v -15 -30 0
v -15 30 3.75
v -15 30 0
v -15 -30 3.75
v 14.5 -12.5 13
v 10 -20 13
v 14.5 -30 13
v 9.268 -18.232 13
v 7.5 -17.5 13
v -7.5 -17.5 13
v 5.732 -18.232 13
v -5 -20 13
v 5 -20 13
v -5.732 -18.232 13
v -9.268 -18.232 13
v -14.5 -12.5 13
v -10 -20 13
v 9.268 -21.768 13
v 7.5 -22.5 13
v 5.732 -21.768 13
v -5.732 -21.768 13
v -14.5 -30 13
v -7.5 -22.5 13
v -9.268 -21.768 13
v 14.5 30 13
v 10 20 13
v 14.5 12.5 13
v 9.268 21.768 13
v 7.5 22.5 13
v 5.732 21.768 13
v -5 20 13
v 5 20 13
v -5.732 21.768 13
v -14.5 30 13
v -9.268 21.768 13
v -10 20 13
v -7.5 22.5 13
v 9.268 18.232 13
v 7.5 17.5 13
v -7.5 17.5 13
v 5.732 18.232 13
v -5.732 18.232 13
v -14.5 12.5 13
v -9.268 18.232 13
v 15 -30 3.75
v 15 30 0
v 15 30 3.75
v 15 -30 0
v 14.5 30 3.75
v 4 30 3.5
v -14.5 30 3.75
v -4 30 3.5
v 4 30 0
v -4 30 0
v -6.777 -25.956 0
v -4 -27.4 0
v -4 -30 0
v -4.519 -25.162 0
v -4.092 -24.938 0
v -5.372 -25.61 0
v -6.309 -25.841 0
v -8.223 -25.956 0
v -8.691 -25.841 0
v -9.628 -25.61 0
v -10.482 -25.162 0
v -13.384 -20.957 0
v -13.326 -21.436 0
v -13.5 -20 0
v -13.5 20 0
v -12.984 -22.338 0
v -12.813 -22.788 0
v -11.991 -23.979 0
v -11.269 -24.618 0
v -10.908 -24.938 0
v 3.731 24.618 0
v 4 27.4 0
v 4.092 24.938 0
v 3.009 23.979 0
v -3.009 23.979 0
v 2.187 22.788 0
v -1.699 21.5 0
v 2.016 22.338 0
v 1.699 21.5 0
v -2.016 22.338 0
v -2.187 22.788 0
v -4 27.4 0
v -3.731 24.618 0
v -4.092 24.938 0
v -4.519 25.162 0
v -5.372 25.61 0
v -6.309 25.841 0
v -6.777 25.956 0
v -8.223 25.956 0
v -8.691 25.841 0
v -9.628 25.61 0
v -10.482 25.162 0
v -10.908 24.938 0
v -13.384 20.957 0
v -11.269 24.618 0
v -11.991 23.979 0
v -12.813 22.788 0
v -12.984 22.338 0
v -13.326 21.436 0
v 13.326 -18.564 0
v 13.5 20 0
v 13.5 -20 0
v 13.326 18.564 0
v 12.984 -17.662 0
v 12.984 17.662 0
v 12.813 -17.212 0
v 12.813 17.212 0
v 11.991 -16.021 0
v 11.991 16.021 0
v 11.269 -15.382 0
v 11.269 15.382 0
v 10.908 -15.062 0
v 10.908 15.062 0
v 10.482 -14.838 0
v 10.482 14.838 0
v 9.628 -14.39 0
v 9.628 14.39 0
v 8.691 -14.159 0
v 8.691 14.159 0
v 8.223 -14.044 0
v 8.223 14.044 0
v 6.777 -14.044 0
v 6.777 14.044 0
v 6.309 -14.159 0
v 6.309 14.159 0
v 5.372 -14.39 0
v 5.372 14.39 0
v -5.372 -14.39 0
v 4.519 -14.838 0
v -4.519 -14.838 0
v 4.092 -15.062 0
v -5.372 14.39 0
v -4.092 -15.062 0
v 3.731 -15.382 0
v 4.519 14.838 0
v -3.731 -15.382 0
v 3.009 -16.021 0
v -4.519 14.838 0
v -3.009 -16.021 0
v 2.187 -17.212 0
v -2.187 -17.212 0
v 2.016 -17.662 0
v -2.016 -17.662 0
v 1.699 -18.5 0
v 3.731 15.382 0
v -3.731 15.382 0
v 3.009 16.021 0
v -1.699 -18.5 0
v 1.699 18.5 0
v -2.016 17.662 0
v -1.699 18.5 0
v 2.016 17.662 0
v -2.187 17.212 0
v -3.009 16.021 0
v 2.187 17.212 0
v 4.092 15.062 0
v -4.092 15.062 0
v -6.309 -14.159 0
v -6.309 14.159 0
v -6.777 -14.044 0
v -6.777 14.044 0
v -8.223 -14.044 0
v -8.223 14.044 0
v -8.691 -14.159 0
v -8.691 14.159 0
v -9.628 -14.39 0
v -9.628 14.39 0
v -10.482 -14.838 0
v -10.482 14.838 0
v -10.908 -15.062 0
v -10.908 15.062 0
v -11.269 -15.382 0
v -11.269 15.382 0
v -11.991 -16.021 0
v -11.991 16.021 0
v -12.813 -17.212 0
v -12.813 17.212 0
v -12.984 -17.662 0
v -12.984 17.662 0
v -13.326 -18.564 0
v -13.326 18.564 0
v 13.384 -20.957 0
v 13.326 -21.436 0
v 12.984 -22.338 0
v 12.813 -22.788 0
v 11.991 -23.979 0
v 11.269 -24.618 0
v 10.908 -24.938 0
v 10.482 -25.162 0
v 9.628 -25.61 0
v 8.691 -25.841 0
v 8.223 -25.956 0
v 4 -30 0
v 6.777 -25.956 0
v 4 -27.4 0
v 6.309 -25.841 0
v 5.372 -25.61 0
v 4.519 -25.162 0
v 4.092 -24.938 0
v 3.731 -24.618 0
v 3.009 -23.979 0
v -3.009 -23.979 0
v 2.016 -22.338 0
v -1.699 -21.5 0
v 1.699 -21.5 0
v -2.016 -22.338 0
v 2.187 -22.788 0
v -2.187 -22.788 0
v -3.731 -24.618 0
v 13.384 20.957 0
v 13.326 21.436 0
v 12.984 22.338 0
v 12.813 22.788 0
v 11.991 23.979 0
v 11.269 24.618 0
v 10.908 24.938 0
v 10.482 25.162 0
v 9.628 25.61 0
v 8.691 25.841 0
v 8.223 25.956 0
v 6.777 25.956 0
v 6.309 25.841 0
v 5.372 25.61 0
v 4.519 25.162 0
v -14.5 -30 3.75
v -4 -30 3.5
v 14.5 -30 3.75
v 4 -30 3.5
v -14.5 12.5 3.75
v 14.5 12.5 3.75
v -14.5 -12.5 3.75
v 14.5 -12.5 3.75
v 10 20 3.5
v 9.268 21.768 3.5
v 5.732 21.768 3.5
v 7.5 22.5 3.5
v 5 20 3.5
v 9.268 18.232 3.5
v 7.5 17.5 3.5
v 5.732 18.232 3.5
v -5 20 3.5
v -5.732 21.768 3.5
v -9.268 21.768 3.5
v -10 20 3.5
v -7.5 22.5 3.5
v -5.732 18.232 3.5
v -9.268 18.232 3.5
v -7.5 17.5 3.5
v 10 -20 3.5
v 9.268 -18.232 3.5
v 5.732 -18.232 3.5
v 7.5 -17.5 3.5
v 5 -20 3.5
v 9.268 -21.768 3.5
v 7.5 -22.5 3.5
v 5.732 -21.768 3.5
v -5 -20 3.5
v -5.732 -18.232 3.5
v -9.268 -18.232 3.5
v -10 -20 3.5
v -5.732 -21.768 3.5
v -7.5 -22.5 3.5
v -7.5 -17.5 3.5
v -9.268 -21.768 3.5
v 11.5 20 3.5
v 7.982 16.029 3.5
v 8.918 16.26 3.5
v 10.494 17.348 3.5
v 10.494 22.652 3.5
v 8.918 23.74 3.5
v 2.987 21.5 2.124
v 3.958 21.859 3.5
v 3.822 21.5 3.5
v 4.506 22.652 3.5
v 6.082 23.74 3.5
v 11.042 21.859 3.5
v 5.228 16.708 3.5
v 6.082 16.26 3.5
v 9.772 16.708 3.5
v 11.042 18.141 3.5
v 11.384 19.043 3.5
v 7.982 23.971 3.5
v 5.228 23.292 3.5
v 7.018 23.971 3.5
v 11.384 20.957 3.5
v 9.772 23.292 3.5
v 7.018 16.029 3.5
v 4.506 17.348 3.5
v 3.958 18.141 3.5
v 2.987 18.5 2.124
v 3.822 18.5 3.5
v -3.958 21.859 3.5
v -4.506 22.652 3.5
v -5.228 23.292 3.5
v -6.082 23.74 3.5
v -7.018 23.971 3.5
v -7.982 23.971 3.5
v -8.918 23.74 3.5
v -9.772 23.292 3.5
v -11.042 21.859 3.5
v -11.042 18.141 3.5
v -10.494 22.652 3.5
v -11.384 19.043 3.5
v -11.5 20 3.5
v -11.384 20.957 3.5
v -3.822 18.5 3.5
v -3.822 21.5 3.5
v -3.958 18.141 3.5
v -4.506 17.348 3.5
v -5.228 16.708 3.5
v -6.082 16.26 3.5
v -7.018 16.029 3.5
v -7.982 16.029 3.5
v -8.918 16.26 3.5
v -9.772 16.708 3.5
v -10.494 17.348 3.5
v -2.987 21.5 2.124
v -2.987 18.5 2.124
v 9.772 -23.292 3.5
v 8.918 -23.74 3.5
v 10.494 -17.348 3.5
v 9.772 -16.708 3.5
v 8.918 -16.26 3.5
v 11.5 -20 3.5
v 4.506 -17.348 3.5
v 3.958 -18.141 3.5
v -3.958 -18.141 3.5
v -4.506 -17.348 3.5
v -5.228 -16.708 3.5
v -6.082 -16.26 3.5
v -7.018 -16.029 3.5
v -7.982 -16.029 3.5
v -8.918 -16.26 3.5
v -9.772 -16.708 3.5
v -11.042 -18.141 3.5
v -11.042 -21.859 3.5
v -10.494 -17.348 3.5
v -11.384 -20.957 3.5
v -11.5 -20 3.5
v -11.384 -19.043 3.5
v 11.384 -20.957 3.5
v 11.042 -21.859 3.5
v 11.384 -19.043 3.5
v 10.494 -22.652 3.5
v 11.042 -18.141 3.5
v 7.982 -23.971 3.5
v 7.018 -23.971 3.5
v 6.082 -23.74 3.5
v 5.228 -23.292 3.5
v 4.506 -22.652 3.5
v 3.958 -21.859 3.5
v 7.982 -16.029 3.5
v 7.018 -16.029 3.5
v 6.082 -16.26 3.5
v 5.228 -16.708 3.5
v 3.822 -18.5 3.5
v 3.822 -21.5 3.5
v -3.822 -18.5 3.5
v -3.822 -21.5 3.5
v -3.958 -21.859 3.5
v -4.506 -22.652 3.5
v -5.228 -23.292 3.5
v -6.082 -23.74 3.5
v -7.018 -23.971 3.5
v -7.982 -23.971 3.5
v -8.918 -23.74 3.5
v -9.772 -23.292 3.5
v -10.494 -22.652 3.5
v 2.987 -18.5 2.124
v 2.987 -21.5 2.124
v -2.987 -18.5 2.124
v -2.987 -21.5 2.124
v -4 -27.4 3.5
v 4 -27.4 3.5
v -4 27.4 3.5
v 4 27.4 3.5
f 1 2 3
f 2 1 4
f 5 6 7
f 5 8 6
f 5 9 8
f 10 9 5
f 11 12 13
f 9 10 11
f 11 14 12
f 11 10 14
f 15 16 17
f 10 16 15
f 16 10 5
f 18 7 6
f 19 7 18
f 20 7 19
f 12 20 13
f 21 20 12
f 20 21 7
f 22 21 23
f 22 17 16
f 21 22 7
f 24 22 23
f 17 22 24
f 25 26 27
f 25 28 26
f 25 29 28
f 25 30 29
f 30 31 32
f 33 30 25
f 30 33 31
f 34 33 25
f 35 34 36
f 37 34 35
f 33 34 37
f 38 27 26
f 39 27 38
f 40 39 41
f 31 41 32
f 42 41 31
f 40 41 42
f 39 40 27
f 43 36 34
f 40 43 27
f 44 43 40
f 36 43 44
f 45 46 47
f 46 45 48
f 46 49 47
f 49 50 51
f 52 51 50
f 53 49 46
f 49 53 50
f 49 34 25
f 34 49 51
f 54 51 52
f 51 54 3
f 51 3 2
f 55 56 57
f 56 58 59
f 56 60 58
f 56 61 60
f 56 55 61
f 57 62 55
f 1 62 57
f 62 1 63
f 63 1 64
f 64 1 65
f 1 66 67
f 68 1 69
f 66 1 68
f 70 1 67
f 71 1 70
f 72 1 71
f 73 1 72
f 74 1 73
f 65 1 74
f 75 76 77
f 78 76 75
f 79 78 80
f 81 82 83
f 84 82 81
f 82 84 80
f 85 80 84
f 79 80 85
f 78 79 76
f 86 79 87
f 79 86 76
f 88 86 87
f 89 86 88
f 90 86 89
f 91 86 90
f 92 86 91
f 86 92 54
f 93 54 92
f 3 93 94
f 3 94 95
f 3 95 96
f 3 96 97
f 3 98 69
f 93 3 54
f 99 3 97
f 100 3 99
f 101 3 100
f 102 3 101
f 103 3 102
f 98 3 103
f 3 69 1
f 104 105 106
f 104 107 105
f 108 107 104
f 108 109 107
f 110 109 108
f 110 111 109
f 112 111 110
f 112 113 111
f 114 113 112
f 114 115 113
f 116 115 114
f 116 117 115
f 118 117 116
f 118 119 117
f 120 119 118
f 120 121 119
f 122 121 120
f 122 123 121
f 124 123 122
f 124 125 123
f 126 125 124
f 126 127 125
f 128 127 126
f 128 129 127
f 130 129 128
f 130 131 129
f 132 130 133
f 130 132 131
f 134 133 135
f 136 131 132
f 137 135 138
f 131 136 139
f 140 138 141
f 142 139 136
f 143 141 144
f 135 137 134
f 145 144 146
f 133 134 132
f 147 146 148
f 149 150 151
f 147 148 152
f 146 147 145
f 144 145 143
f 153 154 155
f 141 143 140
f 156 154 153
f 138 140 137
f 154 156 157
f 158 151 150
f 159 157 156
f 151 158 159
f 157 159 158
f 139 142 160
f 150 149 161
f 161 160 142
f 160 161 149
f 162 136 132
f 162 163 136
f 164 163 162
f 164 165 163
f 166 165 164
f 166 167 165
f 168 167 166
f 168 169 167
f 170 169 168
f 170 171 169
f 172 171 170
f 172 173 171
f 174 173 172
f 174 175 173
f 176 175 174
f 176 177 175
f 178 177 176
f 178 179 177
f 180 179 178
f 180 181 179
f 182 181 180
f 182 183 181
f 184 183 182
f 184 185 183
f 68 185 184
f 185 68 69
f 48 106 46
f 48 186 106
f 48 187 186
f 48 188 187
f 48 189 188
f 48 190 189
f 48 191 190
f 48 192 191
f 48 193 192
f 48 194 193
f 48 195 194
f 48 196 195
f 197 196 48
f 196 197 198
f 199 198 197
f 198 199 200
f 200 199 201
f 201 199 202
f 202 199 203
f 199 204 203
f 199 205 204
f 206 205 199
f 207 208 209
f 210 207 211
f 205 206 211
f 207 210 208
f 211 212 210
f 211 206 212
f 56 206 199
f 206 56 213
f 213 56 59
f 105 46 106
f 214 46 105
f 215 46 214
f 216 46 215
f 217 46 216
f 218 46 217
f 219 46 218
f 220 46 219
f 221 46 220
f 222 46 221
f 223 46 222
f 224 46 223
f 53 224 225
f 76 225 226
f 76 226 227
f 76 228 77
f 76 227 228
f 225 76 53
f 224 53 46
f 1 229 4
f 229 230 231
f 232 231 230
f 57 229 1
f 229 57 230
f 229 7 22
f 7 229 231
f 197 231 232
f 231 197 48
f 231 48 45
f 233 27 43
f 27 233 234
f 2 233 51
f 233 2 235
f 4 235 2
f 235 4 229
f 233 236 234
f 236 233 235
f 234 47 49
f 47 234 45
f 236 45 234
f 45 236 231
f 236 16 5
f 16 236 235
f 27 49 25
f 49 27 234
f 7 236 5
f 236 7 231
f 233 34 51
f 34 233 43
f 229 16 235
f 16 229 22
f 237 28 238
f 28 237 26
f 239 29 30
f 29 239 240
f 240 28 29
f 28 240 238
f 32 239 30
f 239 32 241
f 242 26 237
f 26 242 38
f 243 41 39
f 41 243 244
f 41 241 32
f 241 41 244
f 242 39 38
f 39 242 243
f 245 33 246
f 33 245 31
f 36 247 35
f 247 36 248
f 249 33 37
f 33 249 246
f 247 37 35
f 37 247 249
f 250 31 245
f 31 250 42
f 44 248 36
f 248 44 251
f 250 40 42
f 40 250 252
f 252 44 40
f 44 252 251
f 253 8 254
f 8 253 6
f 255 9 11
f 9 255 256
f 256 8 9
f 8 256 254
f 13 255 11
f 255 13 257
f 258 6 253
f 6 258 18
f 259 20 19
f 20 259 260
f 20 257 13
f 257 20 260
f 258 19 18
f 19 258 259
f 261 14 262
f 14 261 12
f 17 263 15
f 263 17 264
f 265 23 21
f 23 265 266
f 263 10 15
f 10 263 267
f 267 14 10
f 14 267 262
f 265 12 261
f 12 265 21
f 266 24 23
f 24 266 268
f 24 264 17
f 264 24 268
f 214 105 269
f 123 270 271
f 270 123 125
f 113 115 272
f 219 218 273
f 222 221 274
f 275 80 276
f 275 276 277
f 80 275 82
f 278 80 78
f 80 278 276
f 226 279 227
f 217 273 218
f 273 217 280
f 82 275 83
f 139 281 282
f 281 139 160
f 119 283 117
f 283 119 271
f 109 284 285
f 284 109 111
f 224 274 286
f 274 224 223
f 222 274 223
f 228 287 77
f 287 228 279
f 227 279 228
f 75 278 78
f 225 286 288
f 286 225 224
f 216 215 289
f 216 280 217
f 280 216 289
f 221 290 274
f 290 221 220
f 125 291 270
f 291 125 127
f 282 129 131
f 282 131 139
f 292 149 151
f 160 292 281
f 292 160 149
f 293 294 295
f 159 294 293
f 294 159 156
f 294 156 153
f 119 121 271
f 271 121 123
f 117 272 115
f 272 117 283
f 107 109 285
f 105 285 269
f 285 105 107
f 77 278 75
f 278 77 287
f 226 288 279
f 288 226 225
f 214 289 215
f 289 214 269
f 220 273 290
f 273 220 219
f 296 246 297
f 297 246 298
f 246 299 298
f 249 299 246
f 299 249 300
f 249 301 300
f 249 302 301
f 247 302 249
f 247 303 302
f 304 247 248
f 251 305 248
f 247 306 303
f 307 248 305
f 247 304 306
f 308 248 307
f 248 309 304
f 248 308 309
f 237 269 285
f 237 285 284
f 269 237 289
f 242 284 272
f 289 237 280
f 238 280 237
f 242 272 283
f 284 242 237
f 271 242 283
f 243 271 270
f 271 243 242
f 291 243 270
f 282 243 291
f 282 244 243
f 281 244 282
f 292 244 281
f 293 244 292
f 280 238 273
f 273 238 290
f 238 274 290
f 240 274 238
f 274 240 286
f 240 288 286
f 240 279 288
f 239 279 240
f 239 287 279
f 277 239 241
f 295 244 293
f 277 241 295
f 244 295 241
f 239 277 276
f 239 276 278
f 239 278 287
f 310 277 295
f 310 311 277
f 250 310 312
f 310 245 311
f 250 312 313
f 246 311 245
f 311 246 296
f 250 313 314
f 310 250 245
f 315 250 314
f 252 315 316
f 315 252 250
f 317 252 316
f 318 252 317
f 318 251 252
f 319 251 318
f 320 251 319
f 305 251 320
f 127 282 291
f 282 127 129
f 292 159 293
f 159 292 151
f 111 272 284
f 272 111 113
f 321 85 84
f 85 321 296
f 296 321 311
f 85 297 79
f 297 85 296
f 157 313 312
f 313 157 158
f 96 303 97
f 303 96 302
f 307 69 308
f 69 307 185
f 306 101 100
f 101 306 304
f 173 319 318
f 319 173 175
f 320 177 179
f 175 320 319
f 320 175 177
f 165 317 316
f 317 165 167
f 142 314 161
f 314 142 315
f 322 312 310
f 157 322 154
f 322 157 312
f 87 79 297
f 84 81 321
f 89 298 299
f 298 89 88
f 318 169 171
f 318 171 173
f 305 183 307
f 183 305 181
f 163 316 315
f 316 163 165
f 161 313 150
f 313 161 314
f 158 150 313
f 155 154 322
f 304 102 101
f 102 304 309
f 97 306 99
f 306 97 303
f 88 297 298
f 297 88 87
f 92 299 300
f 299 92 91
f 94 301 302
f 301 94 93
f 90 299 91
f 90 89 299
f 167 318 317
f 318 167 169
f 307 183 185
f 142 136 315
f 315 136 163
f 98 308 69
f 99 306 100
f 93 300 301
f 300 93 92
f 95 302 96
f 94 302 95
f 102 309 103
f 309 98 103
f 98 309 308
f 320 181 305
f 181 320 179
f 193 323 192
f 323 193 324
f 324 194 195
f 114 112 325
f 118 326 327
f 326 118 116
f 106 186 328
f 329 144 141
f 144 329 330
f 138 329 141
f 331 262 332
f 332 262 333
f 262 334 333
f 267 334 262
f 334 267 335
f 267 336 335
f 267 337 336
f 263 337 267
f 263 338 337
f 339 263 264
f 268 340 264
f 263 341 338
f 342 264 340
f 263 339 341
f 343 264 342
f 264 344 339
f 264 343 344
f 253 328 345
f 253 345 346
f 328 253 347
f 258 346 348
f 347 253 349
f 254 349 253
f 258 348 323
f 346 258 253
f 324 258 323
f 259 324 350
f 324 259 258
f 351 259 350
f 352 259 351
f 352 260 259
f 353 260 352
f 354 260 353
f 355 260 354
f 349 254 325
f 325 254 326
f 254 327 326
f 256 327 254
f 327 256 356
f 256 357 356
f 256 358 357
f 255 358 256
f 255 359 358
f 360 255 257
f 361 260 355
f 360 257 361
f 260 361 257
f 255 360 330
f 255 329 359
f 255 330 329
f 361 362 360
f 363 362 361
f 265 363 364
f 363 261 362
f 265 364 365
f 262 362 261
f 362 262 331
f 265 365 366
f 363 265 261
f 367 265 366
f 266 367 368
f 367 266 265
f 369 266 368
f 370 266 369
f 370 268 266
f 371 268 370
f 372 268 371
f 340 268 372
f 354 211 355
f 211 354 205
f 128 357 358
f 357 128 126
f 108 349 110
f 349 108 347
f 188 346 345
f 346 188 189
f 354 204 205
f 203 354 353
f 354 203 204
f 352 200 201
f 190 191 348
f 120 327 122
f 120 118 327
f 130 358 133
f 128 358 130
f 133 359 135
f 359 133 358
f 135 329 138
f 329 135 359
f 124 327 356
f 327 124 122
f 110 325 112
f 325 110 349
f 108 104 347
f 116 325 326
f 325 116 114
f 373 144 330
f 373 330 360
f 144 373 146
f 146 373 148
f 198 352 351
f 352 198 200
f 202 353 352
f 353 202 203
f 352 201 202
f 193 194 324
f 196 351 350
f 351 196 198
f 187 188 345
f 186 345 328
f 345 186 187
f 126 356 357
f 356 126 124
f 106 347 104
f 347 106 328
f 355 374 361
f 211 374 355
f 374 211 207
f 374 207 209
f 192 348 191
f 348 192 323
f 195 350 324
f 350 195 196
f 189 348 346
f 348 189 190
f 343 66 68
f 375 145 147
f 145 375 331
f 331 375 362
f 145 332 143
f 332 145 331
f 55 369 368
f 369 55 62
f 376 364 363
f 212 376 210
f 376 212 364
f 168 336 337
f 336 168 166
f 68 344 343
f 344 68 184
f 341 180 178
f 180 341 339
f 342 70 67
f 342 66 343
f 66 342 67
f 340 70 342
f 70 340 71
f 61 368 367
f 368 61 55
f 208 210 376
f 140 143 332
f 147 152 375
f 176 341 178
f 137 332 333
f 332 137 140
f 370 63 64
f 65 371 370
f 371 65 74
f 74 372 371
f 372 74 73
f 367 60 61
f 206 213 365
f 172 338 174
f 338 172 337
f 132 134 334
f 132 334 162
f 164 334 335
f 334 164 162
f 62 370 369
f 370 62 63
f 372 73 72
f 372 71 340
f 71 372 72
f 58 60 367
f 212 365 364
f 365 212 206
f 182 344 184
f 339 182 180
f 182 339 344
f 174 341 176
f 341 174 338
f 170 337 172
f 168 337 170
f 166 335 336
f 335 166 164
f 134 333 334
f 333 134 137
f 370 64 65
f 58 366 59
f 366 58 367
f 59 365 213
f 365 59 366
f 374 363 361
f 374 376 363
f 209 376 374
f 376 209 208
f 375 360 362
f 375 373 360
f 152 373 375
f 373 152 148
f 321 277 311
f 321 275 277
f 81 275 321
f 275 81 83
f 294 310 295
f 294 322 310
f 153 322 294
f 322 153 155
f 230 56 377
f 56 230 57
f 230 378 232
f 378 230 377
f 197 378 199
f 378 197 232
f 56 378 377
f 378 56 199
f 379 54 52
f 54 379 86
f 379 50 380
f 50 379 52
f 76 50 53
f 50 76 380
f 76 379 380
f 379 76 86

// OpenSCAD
//block shape
x=30;
y=60;
z=13;

// track channel
f=x+10;
g=25;
h=9.5;
// block top
e=20;
r=y+10;
t=16.5;

// spacing of screw holes
cx=15;
cy=40;
dx=15;
dy=45;


difference()
{
    translate([0,0,z]/2) cube ([x,y,z],center=true);
    translate([0,0,z+4]/2) cube([f,g,h],center=true);
    translate([49,0,z+11]/2) cube ([e,r,t],center=true);
        translate([-49,0,z+11]/2) cube ([e,r,t],center=true);

  translate([cx,cy,0]/2) cylinder(d=5, h=50,  center=true);
  translate([-cx,cy,0]/2) cylinder(d=5, h=50,  center=true);
    translate([cx,-cy,0]/2) cylinder(d=5, h=50,  center=true);
    translate([-cx,-cy,0]/2) cylinder(d=5, h=50,  center=true);
  translate([dy,dy,0]/2) cylinder(d=5, h=50,  center=true);
  translate([-dy,dy,0]/2) cylinder(d=5, h=50,  center=true);
    translate([dy,-dy,0]/2) cylinder(d=5, h=50,  center=true);
    translate([-dy,-dy,0]/2) cylinder(d=5, h=50,  center=true);  
    translate([dy,dx,0]/2) cylinder(d=5, h=50,  center=true);
  translate([-dy,dx,0]/2) cylinder(d=5, h=50,  center=true);  
  translate([dy,-dx,0]/2) cylinder(d=5, h=50,  center=true);
  translate([-dy,-dx,0]/2) cylinder(d=5, h=50,  center=true);  
    
 translate([cx,cy,0]/2)  cylinder(d1=16, d2=8, h=7,  center=true);
 translate([-cx,cy,0]/2) cylinder(d1=16, d2=8, h=7, center=true);
    translate([cx,-cy,0]/2) cylinder(d1=16, d2=8, h=7,  center=true);
    translate([-cx,-cy,0]/2) cylinder(d1=16, d2=8, h=7,  center=true);    
// zip tie knotches    
    translate([0,-cy/2,11.5-10]) cube([18,3,4],center=true);
    translate([0,cy/2,11.5-10]) cube([18,3,4],center=true);
// removal knotches
       translate([0,-(6.8+51)/2,11.5-10]) cube([8,3,4],center=true);
   translate([0,(6.8+51)/2,11.5-10]) cube([8,3,4],center=true);
   translate([(6.8+51)/2,0,11.5-11]) cube([3,8,2],center=true);
   translate([-(6.8+51)/2,0,11.5-11]) cube([3,8,2],center=true);
}

// translate([0,(6.8+4)/2,z-8]) cube([18,2.7,5],center=true);
// \\ translate([0,-(6.8+4)/2,z-8]) cube([18,2.7,5],center=true);
